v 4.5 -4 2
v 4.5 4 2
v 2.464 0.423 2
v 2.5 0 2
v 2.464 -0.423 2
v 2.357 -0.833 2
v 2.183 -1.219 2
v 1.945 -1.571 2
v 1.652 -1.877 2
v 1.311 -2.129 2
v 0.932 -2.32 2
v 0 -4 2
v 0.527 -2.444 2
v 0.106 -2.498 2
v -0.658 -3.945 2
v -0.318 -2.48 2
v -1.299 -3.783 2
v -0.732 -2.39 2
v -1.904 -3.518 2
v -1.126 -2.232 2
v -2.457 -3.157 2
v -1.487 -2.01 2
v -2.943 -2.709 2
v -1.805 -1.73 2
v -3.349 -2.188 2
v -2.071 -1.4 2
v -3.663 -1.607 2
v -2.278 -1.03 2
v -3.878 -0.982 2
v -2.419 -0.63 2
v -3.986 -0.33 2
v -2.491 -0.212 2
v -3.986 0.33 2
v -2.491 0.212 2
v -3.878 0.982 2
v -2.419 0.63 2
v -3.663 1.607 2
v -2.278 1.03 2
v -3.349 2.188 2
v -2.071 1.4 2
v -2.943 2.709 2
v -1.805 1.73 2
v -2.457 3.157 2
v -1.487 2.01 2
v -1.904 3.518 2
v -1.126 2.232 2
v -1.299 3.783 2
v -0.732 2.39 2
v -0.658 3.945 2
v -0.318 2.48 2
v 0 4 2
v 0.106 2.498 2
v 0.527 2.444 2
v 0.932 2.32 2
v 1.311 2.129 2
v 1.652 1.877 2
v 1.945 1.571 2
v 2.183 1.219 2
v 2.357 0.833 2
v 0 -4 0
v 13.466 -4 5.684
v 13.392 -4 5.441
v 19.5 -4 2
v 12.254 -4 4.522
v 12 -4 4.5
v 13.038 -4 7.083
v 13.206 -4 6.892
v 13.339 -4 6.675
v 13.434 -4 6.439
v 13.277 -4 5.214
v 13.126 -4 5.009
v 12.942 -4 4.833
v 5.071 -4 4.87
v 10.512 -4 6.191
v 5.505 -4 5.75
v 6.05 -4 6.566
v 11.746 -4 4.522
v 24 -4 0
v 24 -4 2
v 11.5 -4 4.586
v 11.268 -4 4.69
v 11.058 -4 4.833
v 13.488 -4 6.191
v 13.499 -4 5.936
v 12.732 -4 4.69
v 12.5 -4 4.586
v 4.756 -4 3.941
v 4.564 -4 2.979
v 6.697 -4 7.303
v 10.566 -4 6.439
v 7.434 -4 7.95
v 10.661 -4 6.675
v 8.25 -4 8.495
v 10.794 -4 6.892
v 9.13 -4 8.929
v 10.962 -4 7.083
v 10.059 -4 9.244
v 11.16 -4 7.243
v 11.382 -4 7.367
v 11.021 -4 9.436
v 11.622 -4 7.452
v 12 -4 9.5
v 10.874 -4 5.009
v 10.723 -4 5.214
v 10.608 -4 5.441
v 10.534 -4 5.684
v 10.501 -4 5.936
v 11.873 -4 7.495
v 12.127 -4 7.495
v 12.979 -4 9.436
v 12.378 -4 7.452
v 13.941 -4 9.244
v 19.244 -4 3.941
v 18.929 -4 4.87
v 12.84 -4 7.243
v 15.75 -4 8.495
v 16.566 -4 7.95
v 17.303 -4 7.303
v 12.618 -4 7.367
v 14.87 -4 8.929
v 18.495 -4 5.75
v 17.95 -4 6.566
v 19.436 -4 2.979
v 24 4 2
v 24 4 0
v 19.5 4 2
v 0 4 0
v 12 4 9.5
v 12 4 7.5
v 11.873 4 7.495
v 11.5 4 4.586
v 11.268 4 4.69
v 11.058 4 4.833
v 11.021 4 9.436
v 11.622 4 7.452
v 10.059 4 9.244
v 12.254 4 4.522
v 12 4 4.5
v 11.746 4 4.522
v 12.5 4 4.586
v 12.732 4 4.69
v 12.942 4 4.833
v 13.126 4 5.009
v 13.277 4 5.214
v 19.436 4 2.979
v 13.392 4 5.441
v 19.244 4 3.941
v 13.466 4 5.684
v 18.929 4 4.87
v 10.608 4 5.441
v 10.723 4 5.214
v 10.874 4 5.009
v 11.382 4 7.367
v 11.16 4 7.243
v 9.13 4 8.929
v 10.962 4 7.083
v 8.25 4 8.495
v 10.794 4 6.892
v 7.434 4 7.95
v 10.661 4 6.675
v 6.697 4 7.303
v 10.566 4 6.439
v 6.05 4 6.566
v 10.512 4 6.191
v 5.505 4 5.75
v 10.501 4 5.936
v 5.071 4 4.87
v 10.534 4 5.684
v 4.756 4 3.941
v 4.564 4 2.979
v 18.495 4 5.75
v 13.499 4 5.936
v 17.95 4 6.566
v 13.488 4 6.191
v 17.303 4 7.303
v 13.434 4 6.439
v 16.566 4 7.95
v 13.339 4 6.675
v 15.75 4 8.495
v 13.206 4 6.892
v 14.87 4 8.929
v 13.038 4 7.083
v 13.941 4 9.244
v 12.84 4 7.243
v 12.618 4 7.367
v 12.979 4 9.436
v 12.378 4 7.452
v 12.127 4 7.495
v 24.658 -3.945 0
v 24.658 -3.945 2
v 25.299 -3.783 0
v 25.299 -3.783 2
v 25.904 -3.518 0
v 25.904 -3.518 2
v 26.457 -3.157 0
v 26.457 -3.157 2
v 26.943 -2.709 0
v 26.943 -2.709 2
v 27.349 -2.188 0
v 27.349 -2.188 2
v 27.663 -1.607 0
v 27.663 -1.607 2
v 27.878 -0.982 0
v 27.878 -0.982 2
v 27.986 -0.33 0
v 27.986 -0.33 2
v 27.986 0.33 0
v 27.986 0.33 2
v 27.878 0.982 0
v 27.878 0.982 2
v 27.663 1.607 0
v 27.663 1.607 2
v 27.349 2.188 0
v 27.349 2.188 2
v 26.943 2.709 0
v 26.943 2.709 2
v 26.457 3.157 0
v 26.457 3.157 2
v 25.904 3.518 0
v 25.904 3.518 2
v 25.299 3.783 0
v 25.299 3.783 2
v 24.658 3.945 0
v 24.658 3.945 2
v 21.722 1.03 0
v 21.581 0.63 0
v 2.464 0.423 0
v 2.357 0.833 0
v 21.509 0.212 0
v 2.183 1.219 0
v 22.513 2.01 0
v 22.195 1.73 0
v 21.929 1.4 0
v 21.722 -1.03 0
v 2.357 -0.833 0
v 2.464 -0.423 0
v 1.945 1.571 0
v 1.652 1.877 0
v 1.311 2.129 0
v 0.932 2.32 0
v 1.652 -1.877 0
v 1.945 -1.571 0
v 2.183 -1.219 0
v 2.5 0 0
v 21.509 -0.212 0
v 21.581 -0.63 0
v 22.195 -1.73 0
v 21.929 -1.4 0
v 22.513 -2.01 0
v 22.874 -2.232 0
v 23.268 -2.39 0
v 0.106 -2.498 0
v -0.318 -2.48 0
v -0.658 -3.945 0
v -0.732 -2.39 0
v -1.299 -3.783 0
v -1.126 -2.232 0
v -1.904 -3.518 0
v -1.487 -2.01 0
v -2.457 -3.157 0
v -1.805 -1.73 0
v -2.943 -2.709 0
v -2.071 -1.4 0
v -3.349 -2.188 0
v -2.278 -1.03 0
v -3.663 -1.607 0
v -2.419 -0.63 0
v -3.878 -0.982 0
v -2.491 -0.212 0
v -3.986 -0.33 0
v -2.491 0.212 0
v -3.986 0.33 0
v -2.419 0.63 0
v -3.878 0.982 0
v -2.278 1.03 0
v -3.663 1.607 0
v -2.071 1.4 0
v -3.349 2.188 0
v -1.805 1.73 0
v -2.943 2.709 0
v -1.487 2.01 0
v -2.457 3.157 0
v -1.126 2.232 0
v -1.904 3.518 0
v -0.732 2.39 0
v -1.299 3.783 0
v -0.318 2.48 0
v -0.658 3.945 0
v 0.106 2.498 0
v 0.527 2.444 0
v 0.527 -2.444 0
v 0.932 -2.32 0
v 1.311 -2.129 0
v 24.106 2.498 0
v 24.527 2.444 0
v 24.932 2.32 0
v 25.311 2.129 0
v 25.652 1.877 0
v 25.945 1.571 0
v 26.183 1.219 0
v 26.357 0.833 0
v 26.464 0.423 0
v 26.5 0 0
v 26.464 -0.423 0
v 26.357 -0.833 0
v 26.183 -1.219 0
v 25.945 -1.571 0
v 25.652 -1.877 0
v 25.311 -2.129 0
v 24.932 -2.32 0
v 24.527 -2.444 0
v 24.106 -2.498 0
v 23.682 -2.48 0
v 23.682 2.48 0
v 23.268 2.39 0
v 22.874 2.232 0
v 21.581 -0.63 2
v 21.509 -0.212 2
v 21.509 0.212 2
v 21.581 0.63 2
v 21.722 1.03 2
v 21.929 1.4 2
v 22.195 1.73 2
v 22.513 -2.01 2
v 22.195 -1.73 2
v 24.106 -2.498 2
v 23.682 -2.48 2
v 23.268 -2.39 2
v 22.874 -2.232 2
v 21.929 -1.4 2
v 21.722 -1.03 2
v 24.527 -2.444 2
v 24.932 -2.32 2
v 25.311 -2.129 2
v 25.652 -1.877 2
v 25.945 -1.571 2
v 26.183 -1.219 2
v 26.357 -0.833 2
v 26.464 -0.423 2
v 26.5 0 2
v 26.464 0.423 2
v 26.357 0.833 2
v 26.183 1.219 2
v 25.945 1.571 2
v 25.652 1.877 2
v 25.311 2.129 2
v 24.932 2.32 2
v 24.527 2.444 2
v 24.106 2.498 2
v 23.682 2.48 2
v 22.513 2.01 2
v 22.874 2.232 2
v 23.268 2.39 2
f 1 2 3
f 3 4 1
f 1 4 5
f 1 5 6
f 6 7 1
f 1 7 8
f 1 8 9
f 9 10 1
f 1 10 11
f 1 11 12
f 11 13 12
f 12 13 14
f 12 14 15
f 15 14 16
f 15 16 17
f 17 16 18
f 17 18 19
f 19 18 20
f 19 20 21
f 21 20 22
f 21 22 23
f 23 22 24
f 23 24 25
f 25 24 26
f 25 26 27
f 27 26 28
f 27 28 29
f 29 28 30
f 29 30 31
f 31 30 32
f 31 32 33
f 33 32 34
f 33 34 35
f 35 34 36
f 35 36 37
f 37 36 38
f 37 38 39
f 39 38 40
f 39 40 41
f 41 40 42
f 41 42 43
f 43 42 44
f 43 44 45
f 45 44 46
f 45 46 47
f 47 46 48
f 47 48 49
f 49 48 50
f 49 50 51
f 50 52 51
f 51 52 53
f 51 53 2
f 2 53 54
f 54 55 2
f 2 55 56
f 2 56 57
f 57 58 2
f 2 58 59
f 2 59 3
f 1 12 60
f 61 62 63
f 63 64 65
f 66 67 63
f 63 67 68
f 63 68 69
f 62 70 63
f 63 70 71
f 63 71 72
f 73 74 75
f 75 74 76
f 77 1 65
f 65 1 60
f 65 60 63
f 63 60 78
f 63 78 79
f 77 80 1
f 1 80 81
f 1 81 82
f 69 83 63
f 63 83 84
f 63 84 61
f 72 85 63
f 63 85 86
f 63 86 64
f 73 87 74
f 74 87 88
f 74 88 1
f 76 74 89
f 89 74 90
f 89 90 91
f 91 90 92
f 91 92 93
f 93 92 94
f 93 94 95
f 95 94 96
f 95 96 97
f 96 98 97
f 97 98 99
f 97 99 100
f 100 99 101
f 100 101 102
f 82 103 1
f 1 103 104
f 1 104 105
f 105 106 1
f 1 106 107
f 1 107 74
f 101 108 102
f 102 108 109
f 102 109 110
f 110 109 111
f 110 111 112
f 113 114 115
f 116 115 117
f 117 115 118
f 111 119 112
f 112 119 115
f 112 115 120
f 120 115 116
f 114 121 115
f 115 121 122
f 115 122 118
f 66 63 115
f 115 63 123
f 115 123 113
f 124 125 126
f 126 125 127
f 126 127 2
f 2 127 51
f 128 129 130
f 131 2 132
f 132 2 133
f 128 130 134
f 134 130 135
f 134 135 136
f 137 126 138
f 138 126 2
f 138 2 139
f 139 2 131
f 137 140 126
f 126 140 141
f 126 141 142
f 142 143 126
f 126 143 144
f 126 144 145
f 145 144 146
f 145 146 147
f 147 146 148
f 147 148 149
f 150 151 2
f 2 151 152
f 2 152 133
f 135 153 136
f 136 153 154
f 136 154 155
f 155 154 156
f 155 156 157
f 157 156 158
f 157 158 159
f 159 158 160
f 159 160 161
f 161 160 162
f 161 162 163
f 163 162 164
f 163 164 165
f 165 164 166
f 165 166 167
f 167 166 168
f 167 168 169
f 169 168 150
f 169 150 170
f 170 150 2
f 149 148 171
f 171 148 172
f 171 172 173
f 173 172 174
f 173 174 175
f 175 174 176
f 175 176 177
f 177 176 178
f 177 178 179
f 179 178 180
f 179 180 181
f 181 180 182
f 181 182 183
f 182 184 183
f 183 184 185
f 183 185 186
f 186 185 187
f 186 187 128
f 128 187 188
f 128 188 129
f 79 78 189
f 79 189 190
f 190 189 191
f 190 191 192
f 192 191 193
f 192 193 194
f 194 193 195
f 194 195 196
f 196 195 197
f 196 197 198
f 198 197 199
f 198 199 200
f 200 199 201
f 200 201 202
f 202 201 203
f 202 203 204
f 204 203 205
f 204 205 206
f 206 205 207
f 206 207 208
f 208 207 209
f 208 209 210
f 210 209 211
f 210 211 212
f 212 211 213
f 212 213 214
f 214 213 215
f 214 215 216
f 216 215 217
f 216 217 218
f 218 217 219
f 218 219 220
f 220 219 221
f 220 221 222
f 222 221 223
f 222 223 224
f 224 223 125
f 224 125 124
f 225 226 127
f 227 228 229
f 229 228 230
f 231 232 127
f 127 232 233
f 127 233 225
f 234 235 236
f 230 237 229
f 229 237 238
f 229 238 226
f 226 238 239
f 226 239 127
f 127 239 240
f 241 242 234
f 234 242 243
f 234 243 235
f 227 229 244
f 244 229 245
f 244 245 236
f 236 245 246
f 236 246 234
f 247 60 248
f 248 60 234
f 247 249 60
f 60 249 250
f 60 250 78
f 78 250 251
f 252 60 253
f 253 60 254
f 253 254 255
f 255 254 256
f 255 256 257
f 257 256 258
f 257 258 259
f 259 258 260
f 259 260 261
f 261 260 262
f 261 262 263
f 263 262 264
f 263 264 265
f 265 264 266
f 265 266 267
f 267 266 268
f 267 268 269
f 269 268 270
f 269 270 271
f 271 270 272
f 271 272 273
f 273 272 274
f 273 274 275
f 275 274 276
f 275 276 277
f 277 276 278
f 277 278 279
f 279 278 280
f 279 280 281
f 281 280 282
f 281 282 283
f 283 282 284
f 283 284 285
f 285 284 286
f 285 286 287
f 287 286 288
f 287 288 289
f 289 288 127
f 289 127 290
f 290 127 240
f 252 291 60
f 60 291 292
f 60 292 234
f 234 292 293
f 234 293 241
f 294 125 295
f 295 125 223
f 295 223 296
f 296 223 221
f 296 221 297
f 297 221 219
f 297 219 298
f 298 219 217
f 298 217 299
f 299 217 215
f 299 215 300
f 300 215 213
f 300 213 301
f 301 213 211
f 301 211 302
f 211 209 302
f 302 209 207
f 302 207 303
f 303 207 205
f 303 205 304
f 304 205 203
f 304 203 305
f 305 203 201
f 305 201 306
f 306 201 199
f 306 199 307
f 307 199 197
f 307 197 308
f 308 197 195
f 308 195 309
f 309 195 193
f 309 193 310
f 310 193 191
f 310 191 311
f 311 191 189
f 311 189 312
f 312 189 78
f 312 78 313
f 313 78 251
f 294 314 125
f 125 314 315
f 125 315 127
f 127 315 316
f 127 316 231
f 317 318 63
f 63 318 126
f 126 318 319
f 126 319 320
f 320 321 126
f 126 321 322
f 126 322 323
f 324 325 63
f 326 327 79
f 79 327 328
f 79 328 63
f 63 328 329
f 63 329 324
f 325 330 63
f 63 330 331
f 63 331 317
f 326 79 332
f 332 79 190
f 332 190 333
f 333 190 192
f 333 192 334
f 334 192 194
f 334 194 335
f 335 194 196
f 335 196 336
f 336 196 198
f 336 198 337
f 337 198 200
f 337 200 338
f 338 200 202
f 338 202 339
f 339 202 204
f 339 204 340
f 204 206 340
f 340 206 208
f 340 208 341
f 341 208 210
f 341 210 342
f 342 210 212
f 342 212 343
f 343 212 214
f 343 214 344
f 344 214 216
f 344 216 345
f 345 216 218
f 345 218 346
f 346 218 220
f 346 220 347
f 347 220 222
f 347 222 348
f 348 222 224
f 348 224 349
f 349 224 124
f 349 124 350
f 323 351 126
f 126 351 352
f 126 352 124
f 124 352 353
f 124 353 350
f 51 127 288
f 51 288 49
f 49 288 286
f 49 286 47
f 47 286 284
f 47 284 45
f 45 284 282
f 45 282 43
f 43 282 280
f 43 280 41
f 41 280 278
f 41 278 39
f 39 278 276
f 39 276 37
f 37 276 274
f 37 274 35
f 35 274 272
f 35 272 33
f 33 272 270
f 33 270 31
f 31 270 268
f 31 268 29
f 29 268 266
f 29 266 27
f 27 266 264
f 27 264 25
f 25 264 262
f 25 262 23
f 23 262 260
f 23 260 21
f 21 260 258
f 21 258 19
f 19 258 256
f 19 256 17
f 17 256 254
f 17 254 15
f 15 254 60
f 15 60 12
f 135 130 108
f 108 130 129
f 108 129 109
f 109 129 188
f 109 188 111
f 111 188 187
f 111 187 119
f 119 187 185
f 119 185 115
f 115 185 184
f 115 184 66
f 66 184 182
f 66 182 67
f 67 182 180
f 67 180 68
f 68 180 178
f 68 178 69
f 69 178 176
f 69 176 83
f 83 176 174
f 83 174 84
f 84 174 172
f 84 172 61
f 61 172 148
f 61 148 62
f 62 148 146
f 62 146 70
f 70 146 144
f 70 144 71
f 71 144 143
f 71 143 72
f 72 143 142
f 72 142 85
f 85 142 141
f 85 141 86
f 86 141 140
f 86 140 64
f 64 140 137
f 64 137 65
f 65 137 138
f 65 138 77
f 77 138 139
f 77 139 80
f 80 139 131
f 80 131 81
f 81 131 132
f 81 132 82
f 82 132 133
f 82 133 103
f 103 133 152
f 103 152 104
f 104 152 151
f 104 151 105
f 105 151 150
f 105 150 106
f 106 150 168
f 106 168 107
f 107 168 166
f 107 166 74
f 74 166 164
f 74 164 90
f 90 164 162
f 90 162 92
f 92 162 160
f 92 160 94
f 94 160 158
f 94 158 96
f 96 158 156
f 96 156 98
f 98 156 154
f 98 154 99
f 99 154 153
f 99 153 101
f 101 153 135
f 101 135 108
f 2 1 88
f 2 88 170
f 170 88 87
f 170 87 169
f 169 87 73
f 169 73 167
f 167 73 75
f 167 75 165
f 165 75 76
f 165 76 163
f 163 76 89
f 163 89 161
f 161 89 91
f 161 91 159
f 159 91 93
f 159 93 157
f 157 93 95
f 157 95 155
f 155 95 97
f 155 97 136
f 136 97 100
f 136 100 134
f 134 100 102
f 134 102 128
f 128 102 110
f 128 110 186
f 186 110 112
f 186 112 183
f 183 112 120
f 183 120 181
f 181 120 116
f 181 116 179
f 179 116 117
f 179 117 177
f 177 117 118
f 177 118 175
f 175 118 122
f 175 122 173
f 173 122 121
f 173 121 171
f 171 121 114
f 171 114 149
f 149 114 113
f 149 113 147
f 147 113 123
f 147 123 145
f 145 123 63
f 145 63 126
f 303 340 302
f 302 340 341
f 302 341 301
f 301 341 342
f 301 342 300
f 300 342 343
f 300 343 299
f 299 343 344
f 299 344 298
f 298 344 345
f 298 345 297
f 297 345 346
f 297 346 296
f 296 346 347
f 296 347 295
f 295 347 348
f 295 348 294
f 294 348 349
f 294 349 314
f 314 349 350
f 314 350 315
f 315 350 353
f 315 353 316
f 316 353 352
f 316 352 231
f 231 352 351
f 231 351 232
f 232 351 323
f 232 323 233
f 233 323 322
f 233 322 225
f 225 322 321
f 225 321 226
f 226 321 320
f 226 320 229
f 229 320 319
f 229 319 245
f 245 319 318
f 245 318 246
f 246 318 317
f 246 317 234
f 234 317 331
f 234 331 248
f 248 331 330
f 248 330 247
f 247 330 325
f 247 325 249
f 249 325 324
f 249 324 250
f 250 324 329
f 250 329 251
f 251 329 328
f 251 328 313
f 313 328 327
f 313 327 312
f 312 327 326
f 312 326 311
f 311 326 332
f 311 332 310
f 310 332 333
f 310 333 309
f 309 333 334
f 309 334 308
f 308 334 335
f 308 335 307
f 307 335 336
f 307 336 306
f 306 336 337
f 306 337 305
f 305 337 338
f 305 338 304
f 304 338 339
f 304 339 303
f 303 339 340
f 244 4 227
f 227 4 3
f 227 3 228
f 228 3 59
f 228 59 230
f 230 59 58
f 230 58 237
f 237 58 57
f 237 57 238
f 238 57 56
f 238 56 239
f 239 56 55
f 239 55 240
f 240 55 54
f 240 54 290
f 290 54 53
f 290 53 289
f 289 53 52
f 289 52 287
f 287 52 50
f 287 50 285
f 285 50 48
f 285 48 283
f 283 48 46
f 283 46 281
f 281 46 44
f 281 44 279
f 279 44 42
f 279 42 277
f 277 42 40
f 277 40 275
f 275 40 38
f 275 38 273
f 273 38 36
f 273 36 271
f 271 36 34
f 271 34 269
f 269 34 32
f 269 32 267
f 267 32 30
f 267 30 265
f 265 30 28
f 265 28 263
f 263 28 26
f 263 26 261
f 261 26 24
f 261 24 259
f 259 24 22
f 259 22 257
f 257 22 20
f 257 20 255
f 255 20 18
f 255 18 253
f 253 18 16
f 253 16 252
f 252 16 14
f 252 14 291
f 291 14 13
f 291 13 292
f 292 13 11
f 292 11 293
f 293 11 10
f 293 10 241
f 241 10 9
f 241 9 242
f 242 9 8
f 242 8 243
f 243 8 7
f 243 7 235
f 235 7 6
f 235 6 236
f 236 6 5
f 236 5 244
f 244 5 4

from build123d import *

# Parameters (mm, degrees)
BOSS_EXTRUDE1_DEPTH = 2
SKETCH2_R           = 1.5
BOSS_EXTRUDE2_DEPTH = 8
SKETCH6_R           = 2.5
CUT_EXTRUDE1_DEPTH  = 30.261749777


with BuildPart() as part:
    # Sketch1 → Boss-Extrude1 (new body)
    with BuildSketch(Plane.XY):
        with BuildLine():
            ThreePointArc((4, 0), (2.828427125, 2.828427125), (0, 4))
            Line((0, 4), (0, -4))
            ThreePointArc((0, -4), (2.828427125, -2.828427125), (4, 0))
        make_face()
        with BuildLine():
            Line((0, -4), (0, 4))
            ThreePointArc((0, 4), (-4, 0), (0, -4))
        make_face()
        with BuildLine():
            ThreePointArc((4, 0), (2.828427125, 2.828427125), (0, 4))
            Line((0, 4), (0, -4))
            ThreePointArc((0, -4), (2.828427125, -2.828427125), (4, 0))
        make_face()
        with BuildLine():
            Line((0, -4), (0, 4))
            ThreePointArc((0, 4), (-4, 0), (0, -4))
        make_face()
        with BuildLine():
            Line((24, 4), (0, 4))
            ThreePointArc((0, 4), (2.828427125, 2.828427125), (4, 0))
            ThreePointArc((4, 0), (2.828427125, -2.828427125), (0, -4))
            Line((0, -4), (24, -4))
            ThreePointArc((24, -4), (20, 0), (24, 4))
        make_face()
        with BuildLine():
            ThreePointArc((28, 0), (26.828427125, 2.828427125), (24, 4))
            Line((24, 4), (24, -4))
            ThreePointArc((24, -4), (26.828427125, -2.828427125), (28, 0))
        make_face()
        with BuildLine():
            Line((24, -4), (24, 4))
            ThreePointArc((24, 4), (20, 0), (24, -4))
        make_face()
        with BuildLine():
            ThreePointArc((28, 0), (26.828427125, 2.828427125), (24, 4))
            Line((24, 4), (24, -4))
            ThreePointArc((24, -4), (26.828427125, -2.828427125), (28, 0))
        make_face()
        with BuildLine():
            Line((24, -4), (24, 4))
            ThreePointArc((24, 4), (20, 0), (24, -4))
        make_face()
    extrude(amount=BOSS_EXTRUDE1_DEPTH)

    # Sketch2 → Boss-Extrude2 (add)
    with BuildSketch(Plane.XZ.offset(4)):
        with BuildLine():
            Line((4.5, 2), (19.5, 2))
            ThreePointArc((19.5, 2), (12, 9.5), (4.5, 2))
        make_face()
        with Locations(Location((12, 6, 0), (0, 0, 270))):
            Circle(SKETCH2_R, mode=Mode.SUBTRACT)
    extrude(amount=-BOSS_EXTRUDE2_DEPTH)

    # Sketch6 → Cut-Extrude1 (cut, through all)
    with BuildSketch(Plane.XY.offset(2)):
        Circle(SKETCH6_R)
        with Locations((24, 0)):
            Circle(SKETCH6_R)
    extrude(amount=-CUT_EXTRUDE1_DEPTH, mode=Mode.SUBTRACT)


solid = part.part
